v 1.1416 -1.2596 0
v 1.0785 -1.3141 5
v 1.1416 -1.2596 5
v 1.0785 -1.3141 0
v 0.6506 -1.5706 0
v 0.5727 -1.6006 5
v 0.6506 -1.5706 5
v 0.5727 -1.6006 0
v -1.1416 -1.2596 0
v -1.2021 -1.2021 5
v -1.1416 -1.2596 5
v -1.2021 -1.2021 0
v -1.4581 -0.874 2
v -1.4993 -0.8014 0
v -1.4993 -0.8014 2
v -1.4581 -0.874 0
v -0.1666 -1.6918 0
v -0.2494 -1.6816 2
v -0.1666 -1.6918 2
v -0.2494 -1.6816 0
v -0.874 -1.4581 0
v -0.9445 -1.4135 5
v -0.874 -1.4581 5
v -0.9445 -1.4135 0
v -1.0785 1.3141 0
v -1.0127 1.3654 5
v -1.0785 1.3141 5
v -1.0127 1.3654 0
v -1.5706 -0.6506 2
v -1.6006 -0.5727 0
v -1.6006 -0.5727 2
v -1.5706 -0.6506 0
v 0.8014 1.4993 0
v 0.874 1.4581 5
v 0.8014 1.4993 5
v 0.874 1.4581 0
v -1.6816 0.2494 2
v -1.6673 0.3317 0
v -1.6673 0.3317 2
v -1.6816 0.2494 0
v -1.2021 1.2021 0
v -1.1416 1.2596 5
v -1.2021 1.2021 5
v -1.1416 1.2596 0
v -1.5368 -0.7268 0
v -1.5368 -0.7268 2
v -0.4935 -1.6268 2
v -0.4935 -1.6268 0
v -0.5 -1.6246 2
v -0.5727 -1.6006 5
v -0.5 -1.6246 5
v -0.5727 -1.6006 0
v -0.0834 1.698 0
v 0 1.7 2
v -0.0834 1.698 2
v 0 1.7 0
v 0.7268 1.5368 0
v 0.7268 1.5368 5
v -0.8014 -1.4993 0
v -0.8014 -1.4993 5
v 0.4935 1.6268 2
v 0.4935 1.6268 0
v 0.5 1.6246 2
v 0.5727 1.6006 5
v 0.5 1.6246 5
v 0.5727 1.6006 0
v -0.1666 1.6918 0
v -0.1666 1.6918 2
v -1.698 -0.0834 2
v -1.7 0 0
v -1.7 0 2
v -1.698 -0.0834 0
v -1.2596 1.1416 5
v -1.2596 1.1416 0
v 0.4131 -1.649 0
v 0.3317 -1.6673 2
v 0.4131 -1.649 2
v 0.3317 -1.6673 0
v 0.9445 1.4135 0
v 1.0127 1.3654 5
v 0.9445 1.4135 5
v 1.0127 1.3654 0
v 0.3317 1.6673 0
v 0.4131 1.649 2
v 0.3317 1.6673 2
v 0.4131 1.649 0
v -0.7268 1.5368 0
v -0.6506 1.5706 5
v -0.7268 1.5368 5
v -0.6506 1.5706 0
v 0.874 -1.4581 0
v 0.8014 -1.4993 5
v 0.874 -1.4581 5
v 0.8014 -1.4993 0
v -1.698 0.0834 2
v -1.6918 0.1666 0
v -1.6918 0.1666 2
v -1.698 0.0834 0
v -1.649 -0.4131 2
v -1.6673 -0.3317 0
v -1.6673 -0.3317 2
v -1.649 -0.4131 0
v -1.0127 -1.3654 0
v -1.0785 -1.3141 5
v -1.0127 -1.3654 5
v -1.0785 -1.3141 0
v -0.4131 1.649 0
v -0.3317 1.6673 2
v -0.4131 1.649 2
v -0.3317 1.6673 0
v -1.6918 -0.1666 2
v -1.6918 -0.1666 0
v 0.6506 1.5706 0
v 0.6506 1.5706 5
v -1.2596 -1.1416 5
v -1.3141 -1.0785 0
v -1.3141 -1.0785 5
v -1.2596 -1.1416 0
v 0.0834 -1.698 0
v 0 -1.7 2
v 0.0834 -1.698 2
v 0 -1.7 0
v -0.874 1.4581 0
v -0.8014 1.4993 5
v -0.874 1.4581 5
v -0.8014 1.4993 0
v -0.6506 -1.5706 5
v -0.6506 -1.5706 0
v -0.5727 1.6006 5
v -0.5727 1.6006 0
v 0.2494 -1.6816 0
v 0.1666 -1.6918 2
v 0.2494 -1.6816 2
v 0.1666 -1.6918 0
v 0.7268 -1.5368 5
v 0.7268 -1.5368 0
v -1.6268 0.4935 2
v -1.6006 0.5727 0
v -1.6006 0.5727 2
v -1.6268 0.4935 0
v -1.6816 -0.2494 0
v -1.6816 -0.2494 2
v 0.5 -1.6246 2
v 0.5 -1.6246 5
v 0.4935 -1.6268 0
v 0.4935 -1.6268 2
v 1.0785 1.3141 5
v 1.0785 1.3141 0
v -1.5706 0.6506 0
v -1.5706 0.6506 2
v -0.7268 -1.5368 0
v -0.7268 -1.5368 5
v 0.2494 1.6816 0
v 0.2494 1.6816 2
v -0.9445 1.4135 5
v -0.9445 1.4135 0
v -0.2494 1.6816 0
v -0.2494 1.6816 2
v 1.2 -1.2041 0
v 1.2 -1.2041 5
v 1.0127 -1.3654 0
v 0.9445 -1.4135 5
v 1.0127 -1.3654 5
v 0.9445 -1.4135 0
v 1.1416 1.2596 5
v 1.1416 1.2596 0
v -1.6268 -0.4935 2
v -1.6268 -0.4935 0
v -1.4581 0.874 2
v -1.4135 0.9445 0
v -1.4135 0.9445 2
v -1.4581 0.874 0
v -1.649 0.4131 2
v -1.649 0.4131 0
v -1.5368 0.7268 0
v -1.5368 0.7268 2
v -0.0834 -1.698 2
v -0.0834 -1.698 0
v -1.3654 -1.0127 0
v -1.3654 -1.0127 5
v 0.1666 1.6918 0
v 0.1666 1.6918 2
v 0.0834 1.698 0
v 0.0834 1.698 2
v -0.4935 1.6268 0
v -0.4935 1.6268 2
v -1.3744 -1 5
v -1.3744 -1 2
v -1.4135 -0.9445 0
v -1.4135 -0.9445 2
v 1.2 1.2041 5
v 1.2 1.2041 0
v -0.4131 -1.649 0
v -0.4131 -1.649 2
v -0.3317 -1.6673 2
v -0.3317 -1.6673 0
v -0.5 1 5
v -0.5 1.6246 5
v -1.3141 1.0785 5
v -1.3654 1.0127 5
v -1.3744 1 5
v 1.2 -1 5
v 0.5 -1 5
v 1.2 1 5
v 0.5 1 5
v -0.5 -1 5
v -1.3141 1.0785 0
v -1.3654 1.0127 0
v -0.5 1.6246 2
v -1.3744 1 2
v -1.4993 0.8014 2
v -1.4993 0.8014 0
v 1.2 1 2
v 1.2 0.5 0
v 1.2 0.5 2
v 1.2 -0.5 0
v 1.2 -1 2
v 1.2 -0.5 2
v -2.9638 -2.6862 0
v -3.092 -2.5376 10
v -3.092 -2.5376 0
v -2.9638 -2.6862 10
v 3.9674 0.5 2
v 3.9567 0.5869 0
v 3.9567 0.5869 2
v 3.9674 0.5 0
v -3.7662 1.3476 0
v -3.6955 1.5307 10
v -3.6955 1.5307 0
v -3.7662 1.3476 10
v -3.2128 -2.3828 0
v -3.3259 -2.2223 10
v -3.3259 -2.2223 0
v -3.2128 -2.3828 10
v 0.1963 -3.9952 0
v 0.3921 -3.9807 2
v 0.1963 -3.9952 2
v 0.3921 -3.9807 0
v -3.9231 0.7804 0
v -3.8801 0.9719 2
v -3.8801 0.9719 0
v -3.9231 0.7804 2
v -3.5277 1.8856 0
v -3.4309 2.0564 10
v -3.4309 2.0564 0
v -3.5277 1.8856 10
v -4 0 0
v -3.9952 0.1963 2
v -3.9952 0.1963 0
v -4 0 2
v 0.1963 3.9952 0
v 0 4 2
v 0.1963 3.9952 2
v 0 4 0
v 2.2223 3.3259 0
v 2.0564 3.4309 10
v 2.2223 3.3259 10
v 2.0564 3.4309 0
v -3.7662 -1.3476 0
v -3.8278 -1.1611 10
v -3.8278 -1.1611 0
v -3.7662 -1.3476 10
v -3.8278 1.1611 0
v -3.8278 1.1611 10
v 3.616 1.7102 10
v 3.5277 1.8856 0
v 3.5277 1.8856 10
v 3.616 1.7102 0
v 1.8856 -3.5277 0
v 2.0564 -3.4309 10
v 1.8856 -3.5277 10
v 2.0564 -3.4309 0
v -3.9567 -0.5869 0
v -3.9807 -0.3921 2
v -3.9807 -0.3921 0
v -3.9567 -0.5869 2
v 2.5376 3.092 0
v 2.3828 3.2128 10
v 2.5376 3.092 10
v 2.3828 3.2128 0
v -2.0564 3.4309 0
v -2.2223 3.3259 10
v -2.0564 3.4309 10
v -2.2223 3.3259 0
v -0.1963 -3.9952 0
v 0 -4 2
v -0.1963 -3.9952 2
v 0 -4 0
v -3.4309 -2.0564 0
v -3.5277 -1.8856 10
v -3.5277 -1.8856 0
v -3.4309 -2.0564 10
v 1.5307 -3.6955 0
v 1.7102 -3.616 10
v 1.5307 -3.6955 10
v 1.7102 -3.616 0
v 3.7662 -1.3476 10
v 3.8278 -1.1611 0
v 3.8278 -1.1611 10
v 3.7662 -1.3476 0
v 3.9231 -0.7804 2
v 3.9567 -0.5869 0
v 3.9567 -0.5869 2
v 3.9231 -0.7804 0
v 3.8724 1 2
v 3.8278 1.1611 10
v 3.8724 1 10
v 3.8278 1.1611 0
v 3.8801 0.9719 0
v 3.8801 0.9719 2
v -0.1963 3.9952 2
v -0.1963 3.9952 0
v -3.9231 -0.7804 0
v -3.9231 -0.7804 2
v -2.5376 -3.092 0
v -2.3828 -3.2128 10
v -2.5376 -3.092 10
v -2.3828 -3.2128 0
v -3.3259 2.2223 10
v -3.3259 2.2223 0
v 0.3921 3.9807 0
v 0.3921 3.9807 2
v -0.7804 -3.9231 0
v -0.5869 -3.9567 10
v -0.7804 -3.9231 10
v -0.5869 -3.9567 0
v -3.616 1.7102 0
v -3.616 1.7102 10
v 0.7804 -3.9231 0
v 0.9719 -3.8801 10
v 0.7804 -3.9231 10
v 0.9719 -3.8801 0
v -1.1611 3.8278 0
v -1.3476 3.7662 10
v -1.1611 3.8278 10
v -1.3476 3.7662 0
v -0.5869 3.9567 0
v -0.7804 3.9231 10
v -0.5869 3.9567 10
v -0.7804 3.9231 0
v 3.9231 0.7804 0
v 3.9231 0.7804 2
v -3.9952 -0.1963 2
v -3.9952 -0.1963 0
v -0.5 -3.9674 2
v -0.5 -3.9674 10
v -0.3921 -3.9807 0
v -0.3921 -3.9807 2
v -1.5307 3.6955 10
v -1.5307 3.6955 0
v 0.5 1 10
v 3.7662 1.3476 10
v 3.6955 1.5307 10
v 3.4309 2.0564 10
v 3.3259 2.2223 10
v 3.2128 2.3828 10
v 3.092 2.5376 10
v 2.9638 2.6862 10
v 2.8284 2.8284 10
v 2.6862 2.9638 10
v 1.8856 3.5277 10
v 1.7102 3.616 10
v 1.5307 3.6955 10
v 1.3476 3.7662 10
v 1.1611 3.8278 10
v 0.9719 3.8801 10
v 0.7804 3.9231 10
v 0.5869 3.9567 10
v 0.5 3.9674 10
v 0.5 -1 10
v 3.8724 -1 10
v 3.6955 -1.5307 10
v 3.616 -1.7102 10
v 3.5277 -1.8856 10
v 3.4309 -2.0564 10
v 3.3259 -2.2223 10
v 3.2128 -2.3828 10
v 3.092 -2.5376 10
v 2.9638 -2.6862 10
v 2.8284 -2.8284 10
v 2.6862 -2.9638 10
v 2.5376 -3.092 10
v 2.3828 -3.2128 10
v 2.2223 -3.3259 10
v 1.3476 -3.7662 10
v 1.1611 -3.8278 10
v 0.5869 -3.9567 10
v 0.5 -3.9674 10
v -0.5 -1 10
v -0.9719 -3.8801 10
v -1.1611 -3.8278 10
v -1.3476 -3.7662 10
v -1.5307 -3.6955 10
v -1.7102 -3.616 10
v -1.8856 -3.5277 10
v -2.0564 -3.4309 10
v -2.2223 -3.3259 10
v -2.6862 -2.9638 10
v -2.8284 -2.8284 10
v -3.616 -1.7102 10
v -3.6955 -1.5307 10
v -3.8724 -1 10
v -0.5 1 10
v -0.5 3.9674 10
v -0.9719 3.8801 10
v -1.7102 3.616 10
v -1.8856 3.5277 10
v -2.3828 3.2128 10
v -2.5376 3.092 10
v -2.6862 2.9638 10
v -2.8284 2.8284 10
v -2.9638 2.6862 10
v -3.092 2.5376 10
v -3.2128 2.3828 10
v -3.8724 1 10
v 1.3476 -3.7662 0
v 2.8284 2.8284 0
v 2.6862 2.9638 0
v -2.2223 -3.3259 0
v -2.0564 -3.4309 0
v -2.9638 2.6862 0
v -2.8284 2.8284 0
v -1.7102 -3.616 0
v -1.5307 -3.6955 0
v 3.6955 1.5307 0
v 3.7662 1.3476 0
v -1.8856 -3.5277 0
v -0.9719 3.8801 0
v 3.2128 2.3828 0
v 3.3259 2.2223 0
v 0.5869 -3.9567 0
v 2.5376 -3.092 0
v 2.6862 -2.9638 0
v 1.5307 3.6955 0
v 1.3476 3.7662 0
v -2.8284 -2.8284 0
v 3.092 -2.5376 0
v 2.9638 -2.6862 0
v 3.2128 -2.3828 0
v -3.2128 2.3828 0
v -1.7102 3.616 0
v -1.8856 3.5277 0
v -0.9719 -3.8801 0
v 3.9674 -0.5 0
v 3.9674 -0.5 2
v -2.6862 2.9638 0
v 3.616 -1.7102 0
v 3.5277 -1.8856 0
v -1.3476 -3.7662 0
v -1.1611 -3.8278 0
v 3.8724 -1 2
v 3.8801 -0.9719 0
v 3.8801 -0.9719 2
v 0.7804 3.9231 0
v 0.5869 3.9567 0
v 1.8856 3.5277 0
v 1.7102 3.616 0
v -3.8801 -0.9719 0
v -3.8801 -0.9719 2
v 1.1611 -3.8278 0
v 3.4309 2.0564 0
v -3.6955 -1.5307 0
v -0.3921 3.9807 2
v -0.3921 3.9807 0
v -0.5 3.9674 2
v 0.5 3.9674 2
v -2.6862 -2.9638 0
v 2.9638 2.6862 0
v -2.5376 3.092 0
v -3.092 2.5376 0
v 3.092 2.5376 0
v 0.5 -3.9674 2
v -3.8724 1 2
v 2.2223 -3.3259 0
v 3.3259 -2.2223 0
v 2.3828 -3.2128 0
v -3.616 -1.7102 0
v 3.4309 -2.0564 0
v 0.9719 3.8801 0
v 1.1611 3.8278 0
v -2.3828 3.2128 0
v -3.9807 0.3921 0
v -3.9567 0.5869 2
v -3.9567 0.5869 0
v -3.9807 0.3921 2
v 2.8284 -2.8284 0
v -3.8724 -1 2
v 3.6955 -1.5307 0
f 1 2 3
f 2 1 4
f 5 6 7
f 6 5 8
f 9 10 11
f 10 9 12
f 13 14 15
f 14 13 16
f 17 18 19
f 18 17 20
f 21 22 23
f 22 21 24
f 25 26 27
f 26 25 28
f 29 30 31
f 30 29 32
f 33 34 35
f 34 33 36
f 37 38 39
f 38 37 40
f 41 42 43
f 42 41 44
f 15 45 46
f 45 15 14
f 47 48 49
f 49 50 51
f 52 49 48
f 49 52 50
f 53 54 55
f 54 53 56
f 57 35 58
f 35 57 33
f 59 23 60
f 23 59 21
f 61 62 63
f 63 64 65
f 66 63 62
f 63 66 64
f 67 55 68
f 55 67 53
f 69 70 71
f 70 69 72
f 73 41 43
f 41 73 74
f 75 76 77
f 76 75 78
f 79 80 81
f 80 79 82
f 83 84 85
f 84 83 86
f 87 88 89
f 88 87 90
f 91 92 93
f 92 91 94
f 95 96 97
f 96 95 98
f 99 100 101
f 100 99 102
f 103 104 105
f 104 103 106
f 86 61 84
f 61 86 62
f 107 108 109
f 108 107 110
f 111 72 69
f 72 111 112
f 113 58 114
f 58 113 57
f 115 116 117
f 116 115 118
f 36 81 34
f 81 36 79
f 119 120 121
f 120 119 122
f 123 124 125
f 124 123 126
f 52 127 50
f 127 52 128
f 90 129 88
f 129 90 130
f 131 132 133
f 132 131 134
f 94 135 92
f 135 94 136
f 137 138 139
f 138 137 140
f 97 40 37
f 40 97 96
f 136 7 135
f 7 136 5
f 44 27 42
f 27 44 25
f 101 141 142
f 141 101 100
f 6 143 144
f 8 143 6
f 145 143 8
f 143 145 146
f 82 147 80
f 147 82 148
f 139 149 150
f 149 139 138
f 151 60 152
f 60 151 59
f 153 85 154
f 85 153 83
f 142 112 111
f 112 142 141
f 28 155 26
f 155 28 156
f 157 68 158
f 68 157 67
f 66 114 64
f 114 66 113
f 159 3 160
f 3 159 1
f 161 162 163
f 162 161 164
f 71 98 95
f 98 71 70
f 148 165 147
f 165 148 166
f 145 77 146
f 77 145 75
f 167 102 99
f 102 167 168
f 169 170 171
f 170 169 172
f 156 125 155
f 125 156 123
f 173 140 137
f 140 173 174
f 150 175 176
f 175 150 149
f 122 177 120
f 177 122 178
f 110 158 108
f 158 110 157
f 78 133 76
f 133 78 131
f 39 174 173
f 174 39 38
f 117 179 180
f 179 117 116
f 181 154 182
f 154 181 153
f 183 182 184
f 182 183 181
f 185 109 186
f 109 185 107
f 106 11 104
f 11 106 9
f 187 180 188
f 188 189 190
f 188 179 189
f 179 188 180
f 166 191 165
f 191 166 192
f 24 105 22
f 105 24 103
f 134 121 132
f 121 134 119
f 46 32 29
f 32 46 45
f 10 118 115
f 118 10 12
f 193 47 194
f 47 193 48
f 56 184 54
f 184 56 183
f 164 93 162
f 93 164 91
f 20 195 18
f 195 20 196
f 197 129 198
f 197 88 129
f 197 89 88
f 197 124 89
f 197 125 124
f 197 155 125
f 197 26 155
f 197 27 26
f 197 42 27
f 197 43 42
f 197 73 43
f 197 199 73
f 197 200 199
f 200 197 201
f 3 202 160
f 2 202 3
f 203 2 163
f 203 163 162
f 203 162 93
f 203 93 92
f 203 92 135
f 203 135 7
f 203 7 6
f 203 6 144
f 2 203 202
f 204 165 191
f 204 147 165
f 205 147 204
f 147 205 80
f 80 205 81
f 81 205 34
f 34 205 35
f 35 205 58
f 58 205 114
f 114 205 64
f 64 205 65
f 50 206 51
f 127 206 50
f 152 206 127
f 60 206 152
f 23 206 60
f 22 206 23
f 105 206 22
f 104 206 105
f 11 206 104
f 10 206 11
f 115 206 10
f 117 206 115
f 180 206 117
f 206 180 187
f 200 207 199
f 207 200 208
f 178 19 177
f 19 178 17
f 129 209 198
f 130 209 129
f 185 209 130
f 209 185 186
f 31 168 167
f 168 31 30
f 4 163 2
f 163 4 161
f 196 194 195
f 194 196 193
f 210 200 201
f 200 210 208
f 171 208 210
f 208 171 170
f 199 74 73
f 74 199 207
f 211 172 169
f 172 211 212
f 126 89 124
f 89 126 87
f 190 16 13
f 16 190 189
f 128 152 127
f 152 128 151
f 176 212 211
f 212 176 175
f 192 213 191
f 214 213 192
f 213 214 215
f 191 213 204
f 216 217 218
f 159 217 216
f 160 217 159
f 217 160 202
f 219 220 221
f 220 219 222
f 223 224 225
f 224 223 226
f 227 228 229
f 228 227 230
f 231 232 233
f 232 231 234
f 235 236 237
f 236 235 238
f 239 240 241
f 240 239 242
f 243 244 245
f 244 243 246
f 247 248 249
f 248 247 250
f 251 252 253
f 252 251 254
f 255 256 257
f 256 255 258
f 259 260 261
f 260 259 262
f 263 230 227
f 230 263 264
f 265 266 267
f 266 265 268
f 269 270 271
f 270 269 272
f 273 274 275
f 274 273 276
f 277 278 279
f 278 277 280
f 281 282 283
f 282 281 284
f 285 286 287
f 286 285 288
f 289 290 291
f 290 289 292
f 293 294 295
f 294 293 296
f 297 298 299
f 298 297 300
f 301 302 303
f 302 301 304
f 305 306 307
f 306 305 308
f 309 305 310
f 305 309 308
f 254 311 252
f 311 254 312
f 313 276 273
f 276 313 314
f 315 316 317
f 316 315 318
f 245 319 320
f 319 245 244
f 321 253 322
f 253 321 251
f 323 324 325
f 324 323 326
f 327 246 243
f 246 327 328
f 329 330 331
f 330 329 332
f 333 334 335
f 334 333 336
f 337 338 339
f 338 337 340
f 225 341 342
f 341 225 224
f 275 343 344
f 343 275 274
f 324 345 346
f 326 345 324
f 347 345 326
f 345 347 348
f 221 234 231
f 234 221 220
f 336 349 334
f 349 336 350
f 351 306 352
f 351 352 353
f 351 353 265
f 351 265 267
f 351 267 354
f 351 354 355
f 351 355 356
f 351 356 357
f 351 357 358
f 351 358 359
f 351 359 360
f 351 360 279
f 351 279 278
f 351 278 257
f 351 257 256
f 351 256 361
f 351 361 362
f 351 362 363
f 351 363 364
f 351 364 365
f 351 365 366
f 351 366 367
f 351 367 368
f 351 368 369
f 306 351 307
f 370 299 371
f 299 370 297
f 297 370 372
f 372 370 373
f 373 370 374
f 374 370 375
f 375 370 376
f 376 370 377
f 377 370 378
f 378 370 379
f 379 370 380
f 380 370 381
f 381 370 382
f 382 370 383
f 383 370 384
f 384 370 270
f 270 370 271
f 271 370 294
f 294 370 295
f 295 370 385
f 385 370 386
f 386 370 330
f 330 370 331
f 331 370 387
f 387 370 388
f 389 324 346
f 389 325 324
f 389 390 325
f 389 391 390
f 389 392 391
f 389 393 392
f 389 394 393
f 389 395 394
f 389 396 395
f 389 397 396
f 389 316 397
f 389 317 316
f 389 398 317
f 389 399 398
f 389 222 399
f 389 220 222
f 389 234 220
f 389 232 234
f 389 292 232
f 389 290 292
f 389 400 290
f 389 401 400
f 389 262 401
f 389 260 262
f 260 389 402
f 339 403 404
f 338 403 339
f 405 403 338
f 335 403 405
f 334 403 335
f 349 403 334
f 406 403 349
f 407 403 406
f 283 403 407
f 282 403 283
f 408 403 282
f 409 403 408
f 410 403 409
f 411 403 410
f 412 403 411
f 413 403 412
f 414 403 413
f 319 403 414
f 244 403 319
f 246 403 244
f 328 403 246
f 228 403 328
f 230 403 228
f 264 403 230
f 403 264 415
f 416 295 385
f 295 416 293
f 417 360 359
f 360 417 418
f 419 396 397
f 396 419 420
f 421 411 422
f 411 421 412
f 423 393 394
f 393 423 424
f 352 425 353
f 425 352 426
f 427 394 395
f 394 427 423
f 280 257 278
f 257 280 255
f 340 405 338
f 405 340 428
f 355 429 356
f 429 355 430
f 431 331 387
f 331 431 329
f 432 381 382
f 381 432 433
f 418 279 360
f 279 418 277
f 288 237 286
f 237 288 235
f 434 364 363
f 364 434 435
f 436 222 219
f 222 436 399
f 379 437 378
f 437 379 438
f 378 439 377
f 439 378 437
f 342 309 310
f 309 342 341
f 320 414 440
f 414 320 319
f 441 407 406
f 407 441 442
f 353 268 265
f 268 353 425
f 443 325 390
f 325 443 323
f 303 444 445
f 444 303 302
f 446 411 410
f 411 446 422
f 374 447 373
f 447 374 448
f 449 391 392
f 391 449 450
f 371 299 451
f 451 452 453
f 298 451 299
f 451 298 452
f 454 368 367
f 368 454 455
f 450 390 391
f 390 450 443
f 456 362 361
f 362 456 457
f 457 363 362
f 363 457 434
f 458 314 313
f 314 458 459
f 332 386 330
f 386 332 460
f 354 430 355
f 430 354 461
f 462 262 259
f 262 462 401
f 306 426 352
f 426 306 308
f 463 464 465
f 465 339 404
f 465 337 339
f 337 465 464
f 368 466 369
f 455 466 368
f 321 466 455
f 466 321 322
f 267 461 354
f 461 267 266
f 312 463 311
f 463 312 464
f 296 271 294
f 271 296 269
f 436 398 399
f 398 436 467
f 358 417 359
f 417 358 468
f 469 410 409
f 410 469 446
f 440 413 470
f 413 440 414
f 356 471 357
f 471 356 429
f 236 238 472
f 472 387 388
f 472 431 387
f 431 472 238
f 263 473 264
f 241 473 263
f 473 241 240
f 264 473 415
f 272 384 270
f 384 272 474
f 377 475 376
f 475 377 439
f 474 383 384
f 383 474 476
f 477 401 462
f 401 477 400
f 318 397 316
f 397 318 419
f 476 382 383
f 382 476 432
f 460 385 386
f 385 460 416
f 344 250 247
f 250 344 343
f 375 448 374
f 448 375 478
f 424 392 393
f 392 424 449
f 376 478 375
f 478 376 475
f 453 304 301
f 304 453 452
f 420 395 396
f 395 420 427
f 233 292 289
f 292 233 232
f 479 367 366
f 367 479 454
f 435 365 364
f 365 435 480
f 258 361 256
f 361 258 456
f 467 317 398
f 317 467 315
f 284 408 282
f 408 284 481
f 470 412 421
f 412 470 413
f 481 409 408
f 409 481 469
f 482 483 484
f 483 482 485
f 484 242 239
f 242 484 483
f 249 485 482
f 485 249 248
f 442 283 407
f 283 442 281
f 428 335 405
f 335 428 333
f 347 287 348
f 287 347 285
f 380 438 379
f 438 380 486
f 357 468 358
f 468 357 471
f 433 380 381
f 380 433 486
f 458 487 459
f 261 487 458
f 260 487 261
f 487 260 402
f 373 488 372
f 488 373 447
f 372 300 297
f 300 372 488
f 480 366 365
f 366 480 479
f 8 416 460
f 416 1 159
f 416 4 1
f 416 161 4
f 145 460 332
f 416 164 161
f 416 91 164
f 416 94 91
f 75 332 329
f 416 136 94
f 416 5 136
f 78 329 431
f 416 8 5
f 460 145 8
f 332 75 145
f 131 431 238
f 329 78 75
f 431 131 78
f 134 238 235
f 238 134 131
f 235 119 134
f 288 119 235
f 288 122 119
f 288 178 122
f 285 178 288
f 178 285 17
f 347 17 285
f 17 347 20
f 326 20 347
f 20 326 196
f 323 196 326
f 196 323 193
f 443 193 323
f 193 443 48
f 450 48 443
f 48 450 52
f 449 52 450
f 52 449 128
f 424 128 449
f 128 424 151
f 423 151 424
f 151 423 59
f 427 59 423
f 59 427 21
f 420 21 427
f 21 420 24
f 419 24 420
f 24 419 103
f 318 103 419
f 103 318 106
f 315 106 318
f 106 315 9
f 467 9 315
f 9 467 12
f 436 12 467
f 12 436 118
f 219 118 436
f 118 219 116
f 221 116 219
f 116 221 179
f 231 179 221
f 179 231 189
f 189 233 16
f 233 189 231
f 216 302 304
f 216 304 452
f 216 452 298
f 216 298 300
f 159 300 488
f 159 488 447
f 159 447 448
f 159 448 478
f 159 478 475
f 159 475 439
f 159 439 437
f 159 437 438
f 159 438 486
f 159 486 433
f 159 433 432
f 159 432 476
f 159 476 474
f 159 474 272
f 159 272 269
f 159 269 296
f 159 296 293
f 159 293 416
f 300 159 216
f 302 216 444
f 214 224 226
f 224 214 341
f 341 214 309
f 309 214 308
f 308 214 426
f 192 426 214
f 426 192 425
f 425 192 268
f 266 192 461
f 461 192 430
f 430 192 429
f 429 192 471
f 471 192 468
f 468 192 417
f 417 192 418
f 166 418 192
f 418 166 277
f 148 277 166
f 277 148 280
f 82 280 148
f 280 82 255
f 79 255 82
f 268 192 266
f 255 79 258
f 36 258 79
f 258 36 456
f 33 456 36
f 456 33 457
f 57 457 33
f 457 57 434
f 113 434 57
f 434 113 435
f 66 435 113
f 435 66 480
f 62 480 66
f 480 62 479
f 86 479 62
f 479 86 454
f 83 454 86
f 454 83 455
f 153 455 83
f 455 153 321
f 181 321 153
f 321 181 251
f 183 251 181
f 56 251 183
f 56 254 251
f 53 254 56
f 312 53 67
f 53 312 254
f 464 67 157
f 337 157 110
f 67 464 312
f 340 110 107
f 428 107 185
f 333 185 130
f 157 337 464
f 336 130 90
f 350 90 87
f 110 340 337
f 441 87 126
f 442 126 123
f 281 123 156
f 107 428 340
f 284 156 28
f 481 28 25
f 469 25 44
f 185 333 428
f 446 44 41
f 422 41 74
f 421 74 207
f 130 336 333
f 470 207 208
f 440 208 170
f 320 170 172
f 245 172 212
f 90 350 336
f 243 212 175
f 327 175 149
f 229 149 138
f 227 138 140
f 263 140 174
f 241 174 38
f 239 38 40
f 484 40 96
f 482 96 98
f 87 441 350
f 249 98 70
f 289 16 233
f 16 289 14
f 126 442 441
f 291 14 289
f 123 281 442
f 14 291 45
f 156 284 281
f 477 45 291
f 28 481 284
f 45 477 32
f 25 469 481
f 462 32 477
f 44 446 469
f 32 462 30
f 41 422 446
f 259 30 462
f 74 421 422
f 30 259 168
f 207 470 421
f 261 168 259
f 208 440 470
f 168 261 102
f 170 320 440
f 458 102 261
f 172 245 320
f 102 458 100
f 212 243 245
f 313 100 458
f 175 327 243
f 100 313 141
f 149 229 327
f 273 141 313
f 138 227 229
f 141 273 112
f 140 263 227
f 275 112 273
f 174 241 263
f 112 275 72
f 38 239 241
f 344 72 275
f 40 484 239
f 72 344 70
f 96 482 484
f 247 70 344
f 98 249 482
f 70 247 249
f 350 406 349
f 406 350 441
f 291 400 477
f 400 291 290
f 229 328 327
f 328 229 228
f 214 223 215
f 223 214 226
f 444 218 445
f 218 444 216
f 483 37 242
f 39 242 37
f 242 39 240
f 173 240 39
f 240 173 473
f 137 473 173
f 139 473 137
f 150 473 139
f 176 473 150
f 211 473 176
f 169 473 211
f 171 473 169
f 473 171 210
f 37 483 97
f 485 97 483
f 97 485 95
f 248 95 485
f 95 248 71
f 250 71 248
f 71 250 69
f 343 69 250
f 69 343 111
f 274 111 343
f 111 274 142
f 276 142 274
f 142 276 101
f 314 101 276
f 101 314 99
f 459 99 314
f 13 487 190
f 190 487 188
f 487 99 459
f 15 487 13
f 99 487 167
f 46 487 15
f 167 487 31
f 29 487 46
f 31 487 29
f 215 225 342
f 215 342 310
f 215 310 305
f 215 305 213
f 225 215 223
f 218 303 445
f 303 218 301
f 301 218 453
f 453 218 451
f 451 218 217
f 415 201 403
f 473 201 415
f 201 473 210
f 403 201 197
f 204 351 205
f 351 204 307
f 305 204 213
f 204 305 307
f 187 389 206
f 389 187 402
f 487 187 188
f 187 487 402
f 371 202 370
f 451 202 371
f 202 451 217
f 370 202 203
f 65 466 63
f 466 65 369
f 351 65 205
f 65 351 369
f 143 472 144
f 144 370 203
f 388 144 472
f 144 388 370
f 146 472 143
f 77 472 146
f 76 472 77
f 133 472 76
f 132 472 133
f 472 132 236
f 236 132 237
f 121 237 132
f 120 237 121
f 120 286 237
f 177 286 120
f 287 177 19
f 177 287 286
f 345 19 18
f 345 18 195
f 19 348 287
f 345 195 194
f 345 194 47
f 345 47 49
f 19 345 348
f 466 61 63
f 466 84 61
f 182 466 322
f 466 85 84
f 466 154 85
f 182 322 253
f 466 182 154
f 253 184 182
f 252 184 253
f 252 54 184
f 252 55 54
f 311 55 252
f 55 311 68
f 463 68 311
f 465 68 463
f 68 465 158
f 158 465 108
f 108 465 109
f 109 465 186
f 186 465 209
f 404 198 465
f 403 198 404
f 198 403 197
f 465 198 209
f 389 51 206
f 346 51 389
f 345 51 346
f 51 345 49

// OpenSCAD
// N20 90-degree holder — V3
// Units: mm
$fn = 128;

body_d = 8.0;
body_h = 10.0;

// N20 nominal Ø3 mm D-shaft.
// V2 at 3.15 mm was slightly too tight on this K1.
// V3 uses 3.40 mm as a conservative snug-fit test.
shaft_d = 3.40;
shaft_flat = 0.50;
shaft_depth = 5.0;
motor_relief_w = 1.0;

// Material side: perpendicular slots forming a cross.
// User requested depth increased from 2 mm to 8 mm.
cross_wide_w = 2.0;
cross_narrow_w = 1.0;
cross_depth = 8.0;

eps = 0.05;

module d_socket(d, flat, depth) {
    r = d/2;
    flat_x = r-flat;
    intersection() {
        cylinder(d=d, h=depth+eps);
        translate([-r-eps,-r-eps,-eps])
            cube([flat_x+r+eps, d+2*eps, depth+2*eps]);
    }
}

difference() {
    cylinder(d=body_d, h=body_h);

    // MOTOR SIDE: D socket
    translate([0,0,-eps])
        d_socket(shaft_d, shaft_flat, shaft_depth);

    // MOTOR SIDE: one 1 mm radial relief slit
    translate([0,-motor_relief_w/2,-eps])
        cube([body_d/2+eps, motor_relief_w, shaft_depth+eps]);

    // MATERIAL SIDE: 2 mm slot
    translate([-body_d/2-eps,-cross_wide_w/2,body_h-cross_depth])
        cube([body_d+2*eps,cross_wide_w,cross_depth+eps]);

    // MATERIAL SIDE: perpendicular 1 mm slot
    translate([-cross_narrow_w/2,-body_d/2-eps,body_h-cross_depth])
        cube([cross_narrow_w,body_d+2*eps,cross_depth+eps]);
}
